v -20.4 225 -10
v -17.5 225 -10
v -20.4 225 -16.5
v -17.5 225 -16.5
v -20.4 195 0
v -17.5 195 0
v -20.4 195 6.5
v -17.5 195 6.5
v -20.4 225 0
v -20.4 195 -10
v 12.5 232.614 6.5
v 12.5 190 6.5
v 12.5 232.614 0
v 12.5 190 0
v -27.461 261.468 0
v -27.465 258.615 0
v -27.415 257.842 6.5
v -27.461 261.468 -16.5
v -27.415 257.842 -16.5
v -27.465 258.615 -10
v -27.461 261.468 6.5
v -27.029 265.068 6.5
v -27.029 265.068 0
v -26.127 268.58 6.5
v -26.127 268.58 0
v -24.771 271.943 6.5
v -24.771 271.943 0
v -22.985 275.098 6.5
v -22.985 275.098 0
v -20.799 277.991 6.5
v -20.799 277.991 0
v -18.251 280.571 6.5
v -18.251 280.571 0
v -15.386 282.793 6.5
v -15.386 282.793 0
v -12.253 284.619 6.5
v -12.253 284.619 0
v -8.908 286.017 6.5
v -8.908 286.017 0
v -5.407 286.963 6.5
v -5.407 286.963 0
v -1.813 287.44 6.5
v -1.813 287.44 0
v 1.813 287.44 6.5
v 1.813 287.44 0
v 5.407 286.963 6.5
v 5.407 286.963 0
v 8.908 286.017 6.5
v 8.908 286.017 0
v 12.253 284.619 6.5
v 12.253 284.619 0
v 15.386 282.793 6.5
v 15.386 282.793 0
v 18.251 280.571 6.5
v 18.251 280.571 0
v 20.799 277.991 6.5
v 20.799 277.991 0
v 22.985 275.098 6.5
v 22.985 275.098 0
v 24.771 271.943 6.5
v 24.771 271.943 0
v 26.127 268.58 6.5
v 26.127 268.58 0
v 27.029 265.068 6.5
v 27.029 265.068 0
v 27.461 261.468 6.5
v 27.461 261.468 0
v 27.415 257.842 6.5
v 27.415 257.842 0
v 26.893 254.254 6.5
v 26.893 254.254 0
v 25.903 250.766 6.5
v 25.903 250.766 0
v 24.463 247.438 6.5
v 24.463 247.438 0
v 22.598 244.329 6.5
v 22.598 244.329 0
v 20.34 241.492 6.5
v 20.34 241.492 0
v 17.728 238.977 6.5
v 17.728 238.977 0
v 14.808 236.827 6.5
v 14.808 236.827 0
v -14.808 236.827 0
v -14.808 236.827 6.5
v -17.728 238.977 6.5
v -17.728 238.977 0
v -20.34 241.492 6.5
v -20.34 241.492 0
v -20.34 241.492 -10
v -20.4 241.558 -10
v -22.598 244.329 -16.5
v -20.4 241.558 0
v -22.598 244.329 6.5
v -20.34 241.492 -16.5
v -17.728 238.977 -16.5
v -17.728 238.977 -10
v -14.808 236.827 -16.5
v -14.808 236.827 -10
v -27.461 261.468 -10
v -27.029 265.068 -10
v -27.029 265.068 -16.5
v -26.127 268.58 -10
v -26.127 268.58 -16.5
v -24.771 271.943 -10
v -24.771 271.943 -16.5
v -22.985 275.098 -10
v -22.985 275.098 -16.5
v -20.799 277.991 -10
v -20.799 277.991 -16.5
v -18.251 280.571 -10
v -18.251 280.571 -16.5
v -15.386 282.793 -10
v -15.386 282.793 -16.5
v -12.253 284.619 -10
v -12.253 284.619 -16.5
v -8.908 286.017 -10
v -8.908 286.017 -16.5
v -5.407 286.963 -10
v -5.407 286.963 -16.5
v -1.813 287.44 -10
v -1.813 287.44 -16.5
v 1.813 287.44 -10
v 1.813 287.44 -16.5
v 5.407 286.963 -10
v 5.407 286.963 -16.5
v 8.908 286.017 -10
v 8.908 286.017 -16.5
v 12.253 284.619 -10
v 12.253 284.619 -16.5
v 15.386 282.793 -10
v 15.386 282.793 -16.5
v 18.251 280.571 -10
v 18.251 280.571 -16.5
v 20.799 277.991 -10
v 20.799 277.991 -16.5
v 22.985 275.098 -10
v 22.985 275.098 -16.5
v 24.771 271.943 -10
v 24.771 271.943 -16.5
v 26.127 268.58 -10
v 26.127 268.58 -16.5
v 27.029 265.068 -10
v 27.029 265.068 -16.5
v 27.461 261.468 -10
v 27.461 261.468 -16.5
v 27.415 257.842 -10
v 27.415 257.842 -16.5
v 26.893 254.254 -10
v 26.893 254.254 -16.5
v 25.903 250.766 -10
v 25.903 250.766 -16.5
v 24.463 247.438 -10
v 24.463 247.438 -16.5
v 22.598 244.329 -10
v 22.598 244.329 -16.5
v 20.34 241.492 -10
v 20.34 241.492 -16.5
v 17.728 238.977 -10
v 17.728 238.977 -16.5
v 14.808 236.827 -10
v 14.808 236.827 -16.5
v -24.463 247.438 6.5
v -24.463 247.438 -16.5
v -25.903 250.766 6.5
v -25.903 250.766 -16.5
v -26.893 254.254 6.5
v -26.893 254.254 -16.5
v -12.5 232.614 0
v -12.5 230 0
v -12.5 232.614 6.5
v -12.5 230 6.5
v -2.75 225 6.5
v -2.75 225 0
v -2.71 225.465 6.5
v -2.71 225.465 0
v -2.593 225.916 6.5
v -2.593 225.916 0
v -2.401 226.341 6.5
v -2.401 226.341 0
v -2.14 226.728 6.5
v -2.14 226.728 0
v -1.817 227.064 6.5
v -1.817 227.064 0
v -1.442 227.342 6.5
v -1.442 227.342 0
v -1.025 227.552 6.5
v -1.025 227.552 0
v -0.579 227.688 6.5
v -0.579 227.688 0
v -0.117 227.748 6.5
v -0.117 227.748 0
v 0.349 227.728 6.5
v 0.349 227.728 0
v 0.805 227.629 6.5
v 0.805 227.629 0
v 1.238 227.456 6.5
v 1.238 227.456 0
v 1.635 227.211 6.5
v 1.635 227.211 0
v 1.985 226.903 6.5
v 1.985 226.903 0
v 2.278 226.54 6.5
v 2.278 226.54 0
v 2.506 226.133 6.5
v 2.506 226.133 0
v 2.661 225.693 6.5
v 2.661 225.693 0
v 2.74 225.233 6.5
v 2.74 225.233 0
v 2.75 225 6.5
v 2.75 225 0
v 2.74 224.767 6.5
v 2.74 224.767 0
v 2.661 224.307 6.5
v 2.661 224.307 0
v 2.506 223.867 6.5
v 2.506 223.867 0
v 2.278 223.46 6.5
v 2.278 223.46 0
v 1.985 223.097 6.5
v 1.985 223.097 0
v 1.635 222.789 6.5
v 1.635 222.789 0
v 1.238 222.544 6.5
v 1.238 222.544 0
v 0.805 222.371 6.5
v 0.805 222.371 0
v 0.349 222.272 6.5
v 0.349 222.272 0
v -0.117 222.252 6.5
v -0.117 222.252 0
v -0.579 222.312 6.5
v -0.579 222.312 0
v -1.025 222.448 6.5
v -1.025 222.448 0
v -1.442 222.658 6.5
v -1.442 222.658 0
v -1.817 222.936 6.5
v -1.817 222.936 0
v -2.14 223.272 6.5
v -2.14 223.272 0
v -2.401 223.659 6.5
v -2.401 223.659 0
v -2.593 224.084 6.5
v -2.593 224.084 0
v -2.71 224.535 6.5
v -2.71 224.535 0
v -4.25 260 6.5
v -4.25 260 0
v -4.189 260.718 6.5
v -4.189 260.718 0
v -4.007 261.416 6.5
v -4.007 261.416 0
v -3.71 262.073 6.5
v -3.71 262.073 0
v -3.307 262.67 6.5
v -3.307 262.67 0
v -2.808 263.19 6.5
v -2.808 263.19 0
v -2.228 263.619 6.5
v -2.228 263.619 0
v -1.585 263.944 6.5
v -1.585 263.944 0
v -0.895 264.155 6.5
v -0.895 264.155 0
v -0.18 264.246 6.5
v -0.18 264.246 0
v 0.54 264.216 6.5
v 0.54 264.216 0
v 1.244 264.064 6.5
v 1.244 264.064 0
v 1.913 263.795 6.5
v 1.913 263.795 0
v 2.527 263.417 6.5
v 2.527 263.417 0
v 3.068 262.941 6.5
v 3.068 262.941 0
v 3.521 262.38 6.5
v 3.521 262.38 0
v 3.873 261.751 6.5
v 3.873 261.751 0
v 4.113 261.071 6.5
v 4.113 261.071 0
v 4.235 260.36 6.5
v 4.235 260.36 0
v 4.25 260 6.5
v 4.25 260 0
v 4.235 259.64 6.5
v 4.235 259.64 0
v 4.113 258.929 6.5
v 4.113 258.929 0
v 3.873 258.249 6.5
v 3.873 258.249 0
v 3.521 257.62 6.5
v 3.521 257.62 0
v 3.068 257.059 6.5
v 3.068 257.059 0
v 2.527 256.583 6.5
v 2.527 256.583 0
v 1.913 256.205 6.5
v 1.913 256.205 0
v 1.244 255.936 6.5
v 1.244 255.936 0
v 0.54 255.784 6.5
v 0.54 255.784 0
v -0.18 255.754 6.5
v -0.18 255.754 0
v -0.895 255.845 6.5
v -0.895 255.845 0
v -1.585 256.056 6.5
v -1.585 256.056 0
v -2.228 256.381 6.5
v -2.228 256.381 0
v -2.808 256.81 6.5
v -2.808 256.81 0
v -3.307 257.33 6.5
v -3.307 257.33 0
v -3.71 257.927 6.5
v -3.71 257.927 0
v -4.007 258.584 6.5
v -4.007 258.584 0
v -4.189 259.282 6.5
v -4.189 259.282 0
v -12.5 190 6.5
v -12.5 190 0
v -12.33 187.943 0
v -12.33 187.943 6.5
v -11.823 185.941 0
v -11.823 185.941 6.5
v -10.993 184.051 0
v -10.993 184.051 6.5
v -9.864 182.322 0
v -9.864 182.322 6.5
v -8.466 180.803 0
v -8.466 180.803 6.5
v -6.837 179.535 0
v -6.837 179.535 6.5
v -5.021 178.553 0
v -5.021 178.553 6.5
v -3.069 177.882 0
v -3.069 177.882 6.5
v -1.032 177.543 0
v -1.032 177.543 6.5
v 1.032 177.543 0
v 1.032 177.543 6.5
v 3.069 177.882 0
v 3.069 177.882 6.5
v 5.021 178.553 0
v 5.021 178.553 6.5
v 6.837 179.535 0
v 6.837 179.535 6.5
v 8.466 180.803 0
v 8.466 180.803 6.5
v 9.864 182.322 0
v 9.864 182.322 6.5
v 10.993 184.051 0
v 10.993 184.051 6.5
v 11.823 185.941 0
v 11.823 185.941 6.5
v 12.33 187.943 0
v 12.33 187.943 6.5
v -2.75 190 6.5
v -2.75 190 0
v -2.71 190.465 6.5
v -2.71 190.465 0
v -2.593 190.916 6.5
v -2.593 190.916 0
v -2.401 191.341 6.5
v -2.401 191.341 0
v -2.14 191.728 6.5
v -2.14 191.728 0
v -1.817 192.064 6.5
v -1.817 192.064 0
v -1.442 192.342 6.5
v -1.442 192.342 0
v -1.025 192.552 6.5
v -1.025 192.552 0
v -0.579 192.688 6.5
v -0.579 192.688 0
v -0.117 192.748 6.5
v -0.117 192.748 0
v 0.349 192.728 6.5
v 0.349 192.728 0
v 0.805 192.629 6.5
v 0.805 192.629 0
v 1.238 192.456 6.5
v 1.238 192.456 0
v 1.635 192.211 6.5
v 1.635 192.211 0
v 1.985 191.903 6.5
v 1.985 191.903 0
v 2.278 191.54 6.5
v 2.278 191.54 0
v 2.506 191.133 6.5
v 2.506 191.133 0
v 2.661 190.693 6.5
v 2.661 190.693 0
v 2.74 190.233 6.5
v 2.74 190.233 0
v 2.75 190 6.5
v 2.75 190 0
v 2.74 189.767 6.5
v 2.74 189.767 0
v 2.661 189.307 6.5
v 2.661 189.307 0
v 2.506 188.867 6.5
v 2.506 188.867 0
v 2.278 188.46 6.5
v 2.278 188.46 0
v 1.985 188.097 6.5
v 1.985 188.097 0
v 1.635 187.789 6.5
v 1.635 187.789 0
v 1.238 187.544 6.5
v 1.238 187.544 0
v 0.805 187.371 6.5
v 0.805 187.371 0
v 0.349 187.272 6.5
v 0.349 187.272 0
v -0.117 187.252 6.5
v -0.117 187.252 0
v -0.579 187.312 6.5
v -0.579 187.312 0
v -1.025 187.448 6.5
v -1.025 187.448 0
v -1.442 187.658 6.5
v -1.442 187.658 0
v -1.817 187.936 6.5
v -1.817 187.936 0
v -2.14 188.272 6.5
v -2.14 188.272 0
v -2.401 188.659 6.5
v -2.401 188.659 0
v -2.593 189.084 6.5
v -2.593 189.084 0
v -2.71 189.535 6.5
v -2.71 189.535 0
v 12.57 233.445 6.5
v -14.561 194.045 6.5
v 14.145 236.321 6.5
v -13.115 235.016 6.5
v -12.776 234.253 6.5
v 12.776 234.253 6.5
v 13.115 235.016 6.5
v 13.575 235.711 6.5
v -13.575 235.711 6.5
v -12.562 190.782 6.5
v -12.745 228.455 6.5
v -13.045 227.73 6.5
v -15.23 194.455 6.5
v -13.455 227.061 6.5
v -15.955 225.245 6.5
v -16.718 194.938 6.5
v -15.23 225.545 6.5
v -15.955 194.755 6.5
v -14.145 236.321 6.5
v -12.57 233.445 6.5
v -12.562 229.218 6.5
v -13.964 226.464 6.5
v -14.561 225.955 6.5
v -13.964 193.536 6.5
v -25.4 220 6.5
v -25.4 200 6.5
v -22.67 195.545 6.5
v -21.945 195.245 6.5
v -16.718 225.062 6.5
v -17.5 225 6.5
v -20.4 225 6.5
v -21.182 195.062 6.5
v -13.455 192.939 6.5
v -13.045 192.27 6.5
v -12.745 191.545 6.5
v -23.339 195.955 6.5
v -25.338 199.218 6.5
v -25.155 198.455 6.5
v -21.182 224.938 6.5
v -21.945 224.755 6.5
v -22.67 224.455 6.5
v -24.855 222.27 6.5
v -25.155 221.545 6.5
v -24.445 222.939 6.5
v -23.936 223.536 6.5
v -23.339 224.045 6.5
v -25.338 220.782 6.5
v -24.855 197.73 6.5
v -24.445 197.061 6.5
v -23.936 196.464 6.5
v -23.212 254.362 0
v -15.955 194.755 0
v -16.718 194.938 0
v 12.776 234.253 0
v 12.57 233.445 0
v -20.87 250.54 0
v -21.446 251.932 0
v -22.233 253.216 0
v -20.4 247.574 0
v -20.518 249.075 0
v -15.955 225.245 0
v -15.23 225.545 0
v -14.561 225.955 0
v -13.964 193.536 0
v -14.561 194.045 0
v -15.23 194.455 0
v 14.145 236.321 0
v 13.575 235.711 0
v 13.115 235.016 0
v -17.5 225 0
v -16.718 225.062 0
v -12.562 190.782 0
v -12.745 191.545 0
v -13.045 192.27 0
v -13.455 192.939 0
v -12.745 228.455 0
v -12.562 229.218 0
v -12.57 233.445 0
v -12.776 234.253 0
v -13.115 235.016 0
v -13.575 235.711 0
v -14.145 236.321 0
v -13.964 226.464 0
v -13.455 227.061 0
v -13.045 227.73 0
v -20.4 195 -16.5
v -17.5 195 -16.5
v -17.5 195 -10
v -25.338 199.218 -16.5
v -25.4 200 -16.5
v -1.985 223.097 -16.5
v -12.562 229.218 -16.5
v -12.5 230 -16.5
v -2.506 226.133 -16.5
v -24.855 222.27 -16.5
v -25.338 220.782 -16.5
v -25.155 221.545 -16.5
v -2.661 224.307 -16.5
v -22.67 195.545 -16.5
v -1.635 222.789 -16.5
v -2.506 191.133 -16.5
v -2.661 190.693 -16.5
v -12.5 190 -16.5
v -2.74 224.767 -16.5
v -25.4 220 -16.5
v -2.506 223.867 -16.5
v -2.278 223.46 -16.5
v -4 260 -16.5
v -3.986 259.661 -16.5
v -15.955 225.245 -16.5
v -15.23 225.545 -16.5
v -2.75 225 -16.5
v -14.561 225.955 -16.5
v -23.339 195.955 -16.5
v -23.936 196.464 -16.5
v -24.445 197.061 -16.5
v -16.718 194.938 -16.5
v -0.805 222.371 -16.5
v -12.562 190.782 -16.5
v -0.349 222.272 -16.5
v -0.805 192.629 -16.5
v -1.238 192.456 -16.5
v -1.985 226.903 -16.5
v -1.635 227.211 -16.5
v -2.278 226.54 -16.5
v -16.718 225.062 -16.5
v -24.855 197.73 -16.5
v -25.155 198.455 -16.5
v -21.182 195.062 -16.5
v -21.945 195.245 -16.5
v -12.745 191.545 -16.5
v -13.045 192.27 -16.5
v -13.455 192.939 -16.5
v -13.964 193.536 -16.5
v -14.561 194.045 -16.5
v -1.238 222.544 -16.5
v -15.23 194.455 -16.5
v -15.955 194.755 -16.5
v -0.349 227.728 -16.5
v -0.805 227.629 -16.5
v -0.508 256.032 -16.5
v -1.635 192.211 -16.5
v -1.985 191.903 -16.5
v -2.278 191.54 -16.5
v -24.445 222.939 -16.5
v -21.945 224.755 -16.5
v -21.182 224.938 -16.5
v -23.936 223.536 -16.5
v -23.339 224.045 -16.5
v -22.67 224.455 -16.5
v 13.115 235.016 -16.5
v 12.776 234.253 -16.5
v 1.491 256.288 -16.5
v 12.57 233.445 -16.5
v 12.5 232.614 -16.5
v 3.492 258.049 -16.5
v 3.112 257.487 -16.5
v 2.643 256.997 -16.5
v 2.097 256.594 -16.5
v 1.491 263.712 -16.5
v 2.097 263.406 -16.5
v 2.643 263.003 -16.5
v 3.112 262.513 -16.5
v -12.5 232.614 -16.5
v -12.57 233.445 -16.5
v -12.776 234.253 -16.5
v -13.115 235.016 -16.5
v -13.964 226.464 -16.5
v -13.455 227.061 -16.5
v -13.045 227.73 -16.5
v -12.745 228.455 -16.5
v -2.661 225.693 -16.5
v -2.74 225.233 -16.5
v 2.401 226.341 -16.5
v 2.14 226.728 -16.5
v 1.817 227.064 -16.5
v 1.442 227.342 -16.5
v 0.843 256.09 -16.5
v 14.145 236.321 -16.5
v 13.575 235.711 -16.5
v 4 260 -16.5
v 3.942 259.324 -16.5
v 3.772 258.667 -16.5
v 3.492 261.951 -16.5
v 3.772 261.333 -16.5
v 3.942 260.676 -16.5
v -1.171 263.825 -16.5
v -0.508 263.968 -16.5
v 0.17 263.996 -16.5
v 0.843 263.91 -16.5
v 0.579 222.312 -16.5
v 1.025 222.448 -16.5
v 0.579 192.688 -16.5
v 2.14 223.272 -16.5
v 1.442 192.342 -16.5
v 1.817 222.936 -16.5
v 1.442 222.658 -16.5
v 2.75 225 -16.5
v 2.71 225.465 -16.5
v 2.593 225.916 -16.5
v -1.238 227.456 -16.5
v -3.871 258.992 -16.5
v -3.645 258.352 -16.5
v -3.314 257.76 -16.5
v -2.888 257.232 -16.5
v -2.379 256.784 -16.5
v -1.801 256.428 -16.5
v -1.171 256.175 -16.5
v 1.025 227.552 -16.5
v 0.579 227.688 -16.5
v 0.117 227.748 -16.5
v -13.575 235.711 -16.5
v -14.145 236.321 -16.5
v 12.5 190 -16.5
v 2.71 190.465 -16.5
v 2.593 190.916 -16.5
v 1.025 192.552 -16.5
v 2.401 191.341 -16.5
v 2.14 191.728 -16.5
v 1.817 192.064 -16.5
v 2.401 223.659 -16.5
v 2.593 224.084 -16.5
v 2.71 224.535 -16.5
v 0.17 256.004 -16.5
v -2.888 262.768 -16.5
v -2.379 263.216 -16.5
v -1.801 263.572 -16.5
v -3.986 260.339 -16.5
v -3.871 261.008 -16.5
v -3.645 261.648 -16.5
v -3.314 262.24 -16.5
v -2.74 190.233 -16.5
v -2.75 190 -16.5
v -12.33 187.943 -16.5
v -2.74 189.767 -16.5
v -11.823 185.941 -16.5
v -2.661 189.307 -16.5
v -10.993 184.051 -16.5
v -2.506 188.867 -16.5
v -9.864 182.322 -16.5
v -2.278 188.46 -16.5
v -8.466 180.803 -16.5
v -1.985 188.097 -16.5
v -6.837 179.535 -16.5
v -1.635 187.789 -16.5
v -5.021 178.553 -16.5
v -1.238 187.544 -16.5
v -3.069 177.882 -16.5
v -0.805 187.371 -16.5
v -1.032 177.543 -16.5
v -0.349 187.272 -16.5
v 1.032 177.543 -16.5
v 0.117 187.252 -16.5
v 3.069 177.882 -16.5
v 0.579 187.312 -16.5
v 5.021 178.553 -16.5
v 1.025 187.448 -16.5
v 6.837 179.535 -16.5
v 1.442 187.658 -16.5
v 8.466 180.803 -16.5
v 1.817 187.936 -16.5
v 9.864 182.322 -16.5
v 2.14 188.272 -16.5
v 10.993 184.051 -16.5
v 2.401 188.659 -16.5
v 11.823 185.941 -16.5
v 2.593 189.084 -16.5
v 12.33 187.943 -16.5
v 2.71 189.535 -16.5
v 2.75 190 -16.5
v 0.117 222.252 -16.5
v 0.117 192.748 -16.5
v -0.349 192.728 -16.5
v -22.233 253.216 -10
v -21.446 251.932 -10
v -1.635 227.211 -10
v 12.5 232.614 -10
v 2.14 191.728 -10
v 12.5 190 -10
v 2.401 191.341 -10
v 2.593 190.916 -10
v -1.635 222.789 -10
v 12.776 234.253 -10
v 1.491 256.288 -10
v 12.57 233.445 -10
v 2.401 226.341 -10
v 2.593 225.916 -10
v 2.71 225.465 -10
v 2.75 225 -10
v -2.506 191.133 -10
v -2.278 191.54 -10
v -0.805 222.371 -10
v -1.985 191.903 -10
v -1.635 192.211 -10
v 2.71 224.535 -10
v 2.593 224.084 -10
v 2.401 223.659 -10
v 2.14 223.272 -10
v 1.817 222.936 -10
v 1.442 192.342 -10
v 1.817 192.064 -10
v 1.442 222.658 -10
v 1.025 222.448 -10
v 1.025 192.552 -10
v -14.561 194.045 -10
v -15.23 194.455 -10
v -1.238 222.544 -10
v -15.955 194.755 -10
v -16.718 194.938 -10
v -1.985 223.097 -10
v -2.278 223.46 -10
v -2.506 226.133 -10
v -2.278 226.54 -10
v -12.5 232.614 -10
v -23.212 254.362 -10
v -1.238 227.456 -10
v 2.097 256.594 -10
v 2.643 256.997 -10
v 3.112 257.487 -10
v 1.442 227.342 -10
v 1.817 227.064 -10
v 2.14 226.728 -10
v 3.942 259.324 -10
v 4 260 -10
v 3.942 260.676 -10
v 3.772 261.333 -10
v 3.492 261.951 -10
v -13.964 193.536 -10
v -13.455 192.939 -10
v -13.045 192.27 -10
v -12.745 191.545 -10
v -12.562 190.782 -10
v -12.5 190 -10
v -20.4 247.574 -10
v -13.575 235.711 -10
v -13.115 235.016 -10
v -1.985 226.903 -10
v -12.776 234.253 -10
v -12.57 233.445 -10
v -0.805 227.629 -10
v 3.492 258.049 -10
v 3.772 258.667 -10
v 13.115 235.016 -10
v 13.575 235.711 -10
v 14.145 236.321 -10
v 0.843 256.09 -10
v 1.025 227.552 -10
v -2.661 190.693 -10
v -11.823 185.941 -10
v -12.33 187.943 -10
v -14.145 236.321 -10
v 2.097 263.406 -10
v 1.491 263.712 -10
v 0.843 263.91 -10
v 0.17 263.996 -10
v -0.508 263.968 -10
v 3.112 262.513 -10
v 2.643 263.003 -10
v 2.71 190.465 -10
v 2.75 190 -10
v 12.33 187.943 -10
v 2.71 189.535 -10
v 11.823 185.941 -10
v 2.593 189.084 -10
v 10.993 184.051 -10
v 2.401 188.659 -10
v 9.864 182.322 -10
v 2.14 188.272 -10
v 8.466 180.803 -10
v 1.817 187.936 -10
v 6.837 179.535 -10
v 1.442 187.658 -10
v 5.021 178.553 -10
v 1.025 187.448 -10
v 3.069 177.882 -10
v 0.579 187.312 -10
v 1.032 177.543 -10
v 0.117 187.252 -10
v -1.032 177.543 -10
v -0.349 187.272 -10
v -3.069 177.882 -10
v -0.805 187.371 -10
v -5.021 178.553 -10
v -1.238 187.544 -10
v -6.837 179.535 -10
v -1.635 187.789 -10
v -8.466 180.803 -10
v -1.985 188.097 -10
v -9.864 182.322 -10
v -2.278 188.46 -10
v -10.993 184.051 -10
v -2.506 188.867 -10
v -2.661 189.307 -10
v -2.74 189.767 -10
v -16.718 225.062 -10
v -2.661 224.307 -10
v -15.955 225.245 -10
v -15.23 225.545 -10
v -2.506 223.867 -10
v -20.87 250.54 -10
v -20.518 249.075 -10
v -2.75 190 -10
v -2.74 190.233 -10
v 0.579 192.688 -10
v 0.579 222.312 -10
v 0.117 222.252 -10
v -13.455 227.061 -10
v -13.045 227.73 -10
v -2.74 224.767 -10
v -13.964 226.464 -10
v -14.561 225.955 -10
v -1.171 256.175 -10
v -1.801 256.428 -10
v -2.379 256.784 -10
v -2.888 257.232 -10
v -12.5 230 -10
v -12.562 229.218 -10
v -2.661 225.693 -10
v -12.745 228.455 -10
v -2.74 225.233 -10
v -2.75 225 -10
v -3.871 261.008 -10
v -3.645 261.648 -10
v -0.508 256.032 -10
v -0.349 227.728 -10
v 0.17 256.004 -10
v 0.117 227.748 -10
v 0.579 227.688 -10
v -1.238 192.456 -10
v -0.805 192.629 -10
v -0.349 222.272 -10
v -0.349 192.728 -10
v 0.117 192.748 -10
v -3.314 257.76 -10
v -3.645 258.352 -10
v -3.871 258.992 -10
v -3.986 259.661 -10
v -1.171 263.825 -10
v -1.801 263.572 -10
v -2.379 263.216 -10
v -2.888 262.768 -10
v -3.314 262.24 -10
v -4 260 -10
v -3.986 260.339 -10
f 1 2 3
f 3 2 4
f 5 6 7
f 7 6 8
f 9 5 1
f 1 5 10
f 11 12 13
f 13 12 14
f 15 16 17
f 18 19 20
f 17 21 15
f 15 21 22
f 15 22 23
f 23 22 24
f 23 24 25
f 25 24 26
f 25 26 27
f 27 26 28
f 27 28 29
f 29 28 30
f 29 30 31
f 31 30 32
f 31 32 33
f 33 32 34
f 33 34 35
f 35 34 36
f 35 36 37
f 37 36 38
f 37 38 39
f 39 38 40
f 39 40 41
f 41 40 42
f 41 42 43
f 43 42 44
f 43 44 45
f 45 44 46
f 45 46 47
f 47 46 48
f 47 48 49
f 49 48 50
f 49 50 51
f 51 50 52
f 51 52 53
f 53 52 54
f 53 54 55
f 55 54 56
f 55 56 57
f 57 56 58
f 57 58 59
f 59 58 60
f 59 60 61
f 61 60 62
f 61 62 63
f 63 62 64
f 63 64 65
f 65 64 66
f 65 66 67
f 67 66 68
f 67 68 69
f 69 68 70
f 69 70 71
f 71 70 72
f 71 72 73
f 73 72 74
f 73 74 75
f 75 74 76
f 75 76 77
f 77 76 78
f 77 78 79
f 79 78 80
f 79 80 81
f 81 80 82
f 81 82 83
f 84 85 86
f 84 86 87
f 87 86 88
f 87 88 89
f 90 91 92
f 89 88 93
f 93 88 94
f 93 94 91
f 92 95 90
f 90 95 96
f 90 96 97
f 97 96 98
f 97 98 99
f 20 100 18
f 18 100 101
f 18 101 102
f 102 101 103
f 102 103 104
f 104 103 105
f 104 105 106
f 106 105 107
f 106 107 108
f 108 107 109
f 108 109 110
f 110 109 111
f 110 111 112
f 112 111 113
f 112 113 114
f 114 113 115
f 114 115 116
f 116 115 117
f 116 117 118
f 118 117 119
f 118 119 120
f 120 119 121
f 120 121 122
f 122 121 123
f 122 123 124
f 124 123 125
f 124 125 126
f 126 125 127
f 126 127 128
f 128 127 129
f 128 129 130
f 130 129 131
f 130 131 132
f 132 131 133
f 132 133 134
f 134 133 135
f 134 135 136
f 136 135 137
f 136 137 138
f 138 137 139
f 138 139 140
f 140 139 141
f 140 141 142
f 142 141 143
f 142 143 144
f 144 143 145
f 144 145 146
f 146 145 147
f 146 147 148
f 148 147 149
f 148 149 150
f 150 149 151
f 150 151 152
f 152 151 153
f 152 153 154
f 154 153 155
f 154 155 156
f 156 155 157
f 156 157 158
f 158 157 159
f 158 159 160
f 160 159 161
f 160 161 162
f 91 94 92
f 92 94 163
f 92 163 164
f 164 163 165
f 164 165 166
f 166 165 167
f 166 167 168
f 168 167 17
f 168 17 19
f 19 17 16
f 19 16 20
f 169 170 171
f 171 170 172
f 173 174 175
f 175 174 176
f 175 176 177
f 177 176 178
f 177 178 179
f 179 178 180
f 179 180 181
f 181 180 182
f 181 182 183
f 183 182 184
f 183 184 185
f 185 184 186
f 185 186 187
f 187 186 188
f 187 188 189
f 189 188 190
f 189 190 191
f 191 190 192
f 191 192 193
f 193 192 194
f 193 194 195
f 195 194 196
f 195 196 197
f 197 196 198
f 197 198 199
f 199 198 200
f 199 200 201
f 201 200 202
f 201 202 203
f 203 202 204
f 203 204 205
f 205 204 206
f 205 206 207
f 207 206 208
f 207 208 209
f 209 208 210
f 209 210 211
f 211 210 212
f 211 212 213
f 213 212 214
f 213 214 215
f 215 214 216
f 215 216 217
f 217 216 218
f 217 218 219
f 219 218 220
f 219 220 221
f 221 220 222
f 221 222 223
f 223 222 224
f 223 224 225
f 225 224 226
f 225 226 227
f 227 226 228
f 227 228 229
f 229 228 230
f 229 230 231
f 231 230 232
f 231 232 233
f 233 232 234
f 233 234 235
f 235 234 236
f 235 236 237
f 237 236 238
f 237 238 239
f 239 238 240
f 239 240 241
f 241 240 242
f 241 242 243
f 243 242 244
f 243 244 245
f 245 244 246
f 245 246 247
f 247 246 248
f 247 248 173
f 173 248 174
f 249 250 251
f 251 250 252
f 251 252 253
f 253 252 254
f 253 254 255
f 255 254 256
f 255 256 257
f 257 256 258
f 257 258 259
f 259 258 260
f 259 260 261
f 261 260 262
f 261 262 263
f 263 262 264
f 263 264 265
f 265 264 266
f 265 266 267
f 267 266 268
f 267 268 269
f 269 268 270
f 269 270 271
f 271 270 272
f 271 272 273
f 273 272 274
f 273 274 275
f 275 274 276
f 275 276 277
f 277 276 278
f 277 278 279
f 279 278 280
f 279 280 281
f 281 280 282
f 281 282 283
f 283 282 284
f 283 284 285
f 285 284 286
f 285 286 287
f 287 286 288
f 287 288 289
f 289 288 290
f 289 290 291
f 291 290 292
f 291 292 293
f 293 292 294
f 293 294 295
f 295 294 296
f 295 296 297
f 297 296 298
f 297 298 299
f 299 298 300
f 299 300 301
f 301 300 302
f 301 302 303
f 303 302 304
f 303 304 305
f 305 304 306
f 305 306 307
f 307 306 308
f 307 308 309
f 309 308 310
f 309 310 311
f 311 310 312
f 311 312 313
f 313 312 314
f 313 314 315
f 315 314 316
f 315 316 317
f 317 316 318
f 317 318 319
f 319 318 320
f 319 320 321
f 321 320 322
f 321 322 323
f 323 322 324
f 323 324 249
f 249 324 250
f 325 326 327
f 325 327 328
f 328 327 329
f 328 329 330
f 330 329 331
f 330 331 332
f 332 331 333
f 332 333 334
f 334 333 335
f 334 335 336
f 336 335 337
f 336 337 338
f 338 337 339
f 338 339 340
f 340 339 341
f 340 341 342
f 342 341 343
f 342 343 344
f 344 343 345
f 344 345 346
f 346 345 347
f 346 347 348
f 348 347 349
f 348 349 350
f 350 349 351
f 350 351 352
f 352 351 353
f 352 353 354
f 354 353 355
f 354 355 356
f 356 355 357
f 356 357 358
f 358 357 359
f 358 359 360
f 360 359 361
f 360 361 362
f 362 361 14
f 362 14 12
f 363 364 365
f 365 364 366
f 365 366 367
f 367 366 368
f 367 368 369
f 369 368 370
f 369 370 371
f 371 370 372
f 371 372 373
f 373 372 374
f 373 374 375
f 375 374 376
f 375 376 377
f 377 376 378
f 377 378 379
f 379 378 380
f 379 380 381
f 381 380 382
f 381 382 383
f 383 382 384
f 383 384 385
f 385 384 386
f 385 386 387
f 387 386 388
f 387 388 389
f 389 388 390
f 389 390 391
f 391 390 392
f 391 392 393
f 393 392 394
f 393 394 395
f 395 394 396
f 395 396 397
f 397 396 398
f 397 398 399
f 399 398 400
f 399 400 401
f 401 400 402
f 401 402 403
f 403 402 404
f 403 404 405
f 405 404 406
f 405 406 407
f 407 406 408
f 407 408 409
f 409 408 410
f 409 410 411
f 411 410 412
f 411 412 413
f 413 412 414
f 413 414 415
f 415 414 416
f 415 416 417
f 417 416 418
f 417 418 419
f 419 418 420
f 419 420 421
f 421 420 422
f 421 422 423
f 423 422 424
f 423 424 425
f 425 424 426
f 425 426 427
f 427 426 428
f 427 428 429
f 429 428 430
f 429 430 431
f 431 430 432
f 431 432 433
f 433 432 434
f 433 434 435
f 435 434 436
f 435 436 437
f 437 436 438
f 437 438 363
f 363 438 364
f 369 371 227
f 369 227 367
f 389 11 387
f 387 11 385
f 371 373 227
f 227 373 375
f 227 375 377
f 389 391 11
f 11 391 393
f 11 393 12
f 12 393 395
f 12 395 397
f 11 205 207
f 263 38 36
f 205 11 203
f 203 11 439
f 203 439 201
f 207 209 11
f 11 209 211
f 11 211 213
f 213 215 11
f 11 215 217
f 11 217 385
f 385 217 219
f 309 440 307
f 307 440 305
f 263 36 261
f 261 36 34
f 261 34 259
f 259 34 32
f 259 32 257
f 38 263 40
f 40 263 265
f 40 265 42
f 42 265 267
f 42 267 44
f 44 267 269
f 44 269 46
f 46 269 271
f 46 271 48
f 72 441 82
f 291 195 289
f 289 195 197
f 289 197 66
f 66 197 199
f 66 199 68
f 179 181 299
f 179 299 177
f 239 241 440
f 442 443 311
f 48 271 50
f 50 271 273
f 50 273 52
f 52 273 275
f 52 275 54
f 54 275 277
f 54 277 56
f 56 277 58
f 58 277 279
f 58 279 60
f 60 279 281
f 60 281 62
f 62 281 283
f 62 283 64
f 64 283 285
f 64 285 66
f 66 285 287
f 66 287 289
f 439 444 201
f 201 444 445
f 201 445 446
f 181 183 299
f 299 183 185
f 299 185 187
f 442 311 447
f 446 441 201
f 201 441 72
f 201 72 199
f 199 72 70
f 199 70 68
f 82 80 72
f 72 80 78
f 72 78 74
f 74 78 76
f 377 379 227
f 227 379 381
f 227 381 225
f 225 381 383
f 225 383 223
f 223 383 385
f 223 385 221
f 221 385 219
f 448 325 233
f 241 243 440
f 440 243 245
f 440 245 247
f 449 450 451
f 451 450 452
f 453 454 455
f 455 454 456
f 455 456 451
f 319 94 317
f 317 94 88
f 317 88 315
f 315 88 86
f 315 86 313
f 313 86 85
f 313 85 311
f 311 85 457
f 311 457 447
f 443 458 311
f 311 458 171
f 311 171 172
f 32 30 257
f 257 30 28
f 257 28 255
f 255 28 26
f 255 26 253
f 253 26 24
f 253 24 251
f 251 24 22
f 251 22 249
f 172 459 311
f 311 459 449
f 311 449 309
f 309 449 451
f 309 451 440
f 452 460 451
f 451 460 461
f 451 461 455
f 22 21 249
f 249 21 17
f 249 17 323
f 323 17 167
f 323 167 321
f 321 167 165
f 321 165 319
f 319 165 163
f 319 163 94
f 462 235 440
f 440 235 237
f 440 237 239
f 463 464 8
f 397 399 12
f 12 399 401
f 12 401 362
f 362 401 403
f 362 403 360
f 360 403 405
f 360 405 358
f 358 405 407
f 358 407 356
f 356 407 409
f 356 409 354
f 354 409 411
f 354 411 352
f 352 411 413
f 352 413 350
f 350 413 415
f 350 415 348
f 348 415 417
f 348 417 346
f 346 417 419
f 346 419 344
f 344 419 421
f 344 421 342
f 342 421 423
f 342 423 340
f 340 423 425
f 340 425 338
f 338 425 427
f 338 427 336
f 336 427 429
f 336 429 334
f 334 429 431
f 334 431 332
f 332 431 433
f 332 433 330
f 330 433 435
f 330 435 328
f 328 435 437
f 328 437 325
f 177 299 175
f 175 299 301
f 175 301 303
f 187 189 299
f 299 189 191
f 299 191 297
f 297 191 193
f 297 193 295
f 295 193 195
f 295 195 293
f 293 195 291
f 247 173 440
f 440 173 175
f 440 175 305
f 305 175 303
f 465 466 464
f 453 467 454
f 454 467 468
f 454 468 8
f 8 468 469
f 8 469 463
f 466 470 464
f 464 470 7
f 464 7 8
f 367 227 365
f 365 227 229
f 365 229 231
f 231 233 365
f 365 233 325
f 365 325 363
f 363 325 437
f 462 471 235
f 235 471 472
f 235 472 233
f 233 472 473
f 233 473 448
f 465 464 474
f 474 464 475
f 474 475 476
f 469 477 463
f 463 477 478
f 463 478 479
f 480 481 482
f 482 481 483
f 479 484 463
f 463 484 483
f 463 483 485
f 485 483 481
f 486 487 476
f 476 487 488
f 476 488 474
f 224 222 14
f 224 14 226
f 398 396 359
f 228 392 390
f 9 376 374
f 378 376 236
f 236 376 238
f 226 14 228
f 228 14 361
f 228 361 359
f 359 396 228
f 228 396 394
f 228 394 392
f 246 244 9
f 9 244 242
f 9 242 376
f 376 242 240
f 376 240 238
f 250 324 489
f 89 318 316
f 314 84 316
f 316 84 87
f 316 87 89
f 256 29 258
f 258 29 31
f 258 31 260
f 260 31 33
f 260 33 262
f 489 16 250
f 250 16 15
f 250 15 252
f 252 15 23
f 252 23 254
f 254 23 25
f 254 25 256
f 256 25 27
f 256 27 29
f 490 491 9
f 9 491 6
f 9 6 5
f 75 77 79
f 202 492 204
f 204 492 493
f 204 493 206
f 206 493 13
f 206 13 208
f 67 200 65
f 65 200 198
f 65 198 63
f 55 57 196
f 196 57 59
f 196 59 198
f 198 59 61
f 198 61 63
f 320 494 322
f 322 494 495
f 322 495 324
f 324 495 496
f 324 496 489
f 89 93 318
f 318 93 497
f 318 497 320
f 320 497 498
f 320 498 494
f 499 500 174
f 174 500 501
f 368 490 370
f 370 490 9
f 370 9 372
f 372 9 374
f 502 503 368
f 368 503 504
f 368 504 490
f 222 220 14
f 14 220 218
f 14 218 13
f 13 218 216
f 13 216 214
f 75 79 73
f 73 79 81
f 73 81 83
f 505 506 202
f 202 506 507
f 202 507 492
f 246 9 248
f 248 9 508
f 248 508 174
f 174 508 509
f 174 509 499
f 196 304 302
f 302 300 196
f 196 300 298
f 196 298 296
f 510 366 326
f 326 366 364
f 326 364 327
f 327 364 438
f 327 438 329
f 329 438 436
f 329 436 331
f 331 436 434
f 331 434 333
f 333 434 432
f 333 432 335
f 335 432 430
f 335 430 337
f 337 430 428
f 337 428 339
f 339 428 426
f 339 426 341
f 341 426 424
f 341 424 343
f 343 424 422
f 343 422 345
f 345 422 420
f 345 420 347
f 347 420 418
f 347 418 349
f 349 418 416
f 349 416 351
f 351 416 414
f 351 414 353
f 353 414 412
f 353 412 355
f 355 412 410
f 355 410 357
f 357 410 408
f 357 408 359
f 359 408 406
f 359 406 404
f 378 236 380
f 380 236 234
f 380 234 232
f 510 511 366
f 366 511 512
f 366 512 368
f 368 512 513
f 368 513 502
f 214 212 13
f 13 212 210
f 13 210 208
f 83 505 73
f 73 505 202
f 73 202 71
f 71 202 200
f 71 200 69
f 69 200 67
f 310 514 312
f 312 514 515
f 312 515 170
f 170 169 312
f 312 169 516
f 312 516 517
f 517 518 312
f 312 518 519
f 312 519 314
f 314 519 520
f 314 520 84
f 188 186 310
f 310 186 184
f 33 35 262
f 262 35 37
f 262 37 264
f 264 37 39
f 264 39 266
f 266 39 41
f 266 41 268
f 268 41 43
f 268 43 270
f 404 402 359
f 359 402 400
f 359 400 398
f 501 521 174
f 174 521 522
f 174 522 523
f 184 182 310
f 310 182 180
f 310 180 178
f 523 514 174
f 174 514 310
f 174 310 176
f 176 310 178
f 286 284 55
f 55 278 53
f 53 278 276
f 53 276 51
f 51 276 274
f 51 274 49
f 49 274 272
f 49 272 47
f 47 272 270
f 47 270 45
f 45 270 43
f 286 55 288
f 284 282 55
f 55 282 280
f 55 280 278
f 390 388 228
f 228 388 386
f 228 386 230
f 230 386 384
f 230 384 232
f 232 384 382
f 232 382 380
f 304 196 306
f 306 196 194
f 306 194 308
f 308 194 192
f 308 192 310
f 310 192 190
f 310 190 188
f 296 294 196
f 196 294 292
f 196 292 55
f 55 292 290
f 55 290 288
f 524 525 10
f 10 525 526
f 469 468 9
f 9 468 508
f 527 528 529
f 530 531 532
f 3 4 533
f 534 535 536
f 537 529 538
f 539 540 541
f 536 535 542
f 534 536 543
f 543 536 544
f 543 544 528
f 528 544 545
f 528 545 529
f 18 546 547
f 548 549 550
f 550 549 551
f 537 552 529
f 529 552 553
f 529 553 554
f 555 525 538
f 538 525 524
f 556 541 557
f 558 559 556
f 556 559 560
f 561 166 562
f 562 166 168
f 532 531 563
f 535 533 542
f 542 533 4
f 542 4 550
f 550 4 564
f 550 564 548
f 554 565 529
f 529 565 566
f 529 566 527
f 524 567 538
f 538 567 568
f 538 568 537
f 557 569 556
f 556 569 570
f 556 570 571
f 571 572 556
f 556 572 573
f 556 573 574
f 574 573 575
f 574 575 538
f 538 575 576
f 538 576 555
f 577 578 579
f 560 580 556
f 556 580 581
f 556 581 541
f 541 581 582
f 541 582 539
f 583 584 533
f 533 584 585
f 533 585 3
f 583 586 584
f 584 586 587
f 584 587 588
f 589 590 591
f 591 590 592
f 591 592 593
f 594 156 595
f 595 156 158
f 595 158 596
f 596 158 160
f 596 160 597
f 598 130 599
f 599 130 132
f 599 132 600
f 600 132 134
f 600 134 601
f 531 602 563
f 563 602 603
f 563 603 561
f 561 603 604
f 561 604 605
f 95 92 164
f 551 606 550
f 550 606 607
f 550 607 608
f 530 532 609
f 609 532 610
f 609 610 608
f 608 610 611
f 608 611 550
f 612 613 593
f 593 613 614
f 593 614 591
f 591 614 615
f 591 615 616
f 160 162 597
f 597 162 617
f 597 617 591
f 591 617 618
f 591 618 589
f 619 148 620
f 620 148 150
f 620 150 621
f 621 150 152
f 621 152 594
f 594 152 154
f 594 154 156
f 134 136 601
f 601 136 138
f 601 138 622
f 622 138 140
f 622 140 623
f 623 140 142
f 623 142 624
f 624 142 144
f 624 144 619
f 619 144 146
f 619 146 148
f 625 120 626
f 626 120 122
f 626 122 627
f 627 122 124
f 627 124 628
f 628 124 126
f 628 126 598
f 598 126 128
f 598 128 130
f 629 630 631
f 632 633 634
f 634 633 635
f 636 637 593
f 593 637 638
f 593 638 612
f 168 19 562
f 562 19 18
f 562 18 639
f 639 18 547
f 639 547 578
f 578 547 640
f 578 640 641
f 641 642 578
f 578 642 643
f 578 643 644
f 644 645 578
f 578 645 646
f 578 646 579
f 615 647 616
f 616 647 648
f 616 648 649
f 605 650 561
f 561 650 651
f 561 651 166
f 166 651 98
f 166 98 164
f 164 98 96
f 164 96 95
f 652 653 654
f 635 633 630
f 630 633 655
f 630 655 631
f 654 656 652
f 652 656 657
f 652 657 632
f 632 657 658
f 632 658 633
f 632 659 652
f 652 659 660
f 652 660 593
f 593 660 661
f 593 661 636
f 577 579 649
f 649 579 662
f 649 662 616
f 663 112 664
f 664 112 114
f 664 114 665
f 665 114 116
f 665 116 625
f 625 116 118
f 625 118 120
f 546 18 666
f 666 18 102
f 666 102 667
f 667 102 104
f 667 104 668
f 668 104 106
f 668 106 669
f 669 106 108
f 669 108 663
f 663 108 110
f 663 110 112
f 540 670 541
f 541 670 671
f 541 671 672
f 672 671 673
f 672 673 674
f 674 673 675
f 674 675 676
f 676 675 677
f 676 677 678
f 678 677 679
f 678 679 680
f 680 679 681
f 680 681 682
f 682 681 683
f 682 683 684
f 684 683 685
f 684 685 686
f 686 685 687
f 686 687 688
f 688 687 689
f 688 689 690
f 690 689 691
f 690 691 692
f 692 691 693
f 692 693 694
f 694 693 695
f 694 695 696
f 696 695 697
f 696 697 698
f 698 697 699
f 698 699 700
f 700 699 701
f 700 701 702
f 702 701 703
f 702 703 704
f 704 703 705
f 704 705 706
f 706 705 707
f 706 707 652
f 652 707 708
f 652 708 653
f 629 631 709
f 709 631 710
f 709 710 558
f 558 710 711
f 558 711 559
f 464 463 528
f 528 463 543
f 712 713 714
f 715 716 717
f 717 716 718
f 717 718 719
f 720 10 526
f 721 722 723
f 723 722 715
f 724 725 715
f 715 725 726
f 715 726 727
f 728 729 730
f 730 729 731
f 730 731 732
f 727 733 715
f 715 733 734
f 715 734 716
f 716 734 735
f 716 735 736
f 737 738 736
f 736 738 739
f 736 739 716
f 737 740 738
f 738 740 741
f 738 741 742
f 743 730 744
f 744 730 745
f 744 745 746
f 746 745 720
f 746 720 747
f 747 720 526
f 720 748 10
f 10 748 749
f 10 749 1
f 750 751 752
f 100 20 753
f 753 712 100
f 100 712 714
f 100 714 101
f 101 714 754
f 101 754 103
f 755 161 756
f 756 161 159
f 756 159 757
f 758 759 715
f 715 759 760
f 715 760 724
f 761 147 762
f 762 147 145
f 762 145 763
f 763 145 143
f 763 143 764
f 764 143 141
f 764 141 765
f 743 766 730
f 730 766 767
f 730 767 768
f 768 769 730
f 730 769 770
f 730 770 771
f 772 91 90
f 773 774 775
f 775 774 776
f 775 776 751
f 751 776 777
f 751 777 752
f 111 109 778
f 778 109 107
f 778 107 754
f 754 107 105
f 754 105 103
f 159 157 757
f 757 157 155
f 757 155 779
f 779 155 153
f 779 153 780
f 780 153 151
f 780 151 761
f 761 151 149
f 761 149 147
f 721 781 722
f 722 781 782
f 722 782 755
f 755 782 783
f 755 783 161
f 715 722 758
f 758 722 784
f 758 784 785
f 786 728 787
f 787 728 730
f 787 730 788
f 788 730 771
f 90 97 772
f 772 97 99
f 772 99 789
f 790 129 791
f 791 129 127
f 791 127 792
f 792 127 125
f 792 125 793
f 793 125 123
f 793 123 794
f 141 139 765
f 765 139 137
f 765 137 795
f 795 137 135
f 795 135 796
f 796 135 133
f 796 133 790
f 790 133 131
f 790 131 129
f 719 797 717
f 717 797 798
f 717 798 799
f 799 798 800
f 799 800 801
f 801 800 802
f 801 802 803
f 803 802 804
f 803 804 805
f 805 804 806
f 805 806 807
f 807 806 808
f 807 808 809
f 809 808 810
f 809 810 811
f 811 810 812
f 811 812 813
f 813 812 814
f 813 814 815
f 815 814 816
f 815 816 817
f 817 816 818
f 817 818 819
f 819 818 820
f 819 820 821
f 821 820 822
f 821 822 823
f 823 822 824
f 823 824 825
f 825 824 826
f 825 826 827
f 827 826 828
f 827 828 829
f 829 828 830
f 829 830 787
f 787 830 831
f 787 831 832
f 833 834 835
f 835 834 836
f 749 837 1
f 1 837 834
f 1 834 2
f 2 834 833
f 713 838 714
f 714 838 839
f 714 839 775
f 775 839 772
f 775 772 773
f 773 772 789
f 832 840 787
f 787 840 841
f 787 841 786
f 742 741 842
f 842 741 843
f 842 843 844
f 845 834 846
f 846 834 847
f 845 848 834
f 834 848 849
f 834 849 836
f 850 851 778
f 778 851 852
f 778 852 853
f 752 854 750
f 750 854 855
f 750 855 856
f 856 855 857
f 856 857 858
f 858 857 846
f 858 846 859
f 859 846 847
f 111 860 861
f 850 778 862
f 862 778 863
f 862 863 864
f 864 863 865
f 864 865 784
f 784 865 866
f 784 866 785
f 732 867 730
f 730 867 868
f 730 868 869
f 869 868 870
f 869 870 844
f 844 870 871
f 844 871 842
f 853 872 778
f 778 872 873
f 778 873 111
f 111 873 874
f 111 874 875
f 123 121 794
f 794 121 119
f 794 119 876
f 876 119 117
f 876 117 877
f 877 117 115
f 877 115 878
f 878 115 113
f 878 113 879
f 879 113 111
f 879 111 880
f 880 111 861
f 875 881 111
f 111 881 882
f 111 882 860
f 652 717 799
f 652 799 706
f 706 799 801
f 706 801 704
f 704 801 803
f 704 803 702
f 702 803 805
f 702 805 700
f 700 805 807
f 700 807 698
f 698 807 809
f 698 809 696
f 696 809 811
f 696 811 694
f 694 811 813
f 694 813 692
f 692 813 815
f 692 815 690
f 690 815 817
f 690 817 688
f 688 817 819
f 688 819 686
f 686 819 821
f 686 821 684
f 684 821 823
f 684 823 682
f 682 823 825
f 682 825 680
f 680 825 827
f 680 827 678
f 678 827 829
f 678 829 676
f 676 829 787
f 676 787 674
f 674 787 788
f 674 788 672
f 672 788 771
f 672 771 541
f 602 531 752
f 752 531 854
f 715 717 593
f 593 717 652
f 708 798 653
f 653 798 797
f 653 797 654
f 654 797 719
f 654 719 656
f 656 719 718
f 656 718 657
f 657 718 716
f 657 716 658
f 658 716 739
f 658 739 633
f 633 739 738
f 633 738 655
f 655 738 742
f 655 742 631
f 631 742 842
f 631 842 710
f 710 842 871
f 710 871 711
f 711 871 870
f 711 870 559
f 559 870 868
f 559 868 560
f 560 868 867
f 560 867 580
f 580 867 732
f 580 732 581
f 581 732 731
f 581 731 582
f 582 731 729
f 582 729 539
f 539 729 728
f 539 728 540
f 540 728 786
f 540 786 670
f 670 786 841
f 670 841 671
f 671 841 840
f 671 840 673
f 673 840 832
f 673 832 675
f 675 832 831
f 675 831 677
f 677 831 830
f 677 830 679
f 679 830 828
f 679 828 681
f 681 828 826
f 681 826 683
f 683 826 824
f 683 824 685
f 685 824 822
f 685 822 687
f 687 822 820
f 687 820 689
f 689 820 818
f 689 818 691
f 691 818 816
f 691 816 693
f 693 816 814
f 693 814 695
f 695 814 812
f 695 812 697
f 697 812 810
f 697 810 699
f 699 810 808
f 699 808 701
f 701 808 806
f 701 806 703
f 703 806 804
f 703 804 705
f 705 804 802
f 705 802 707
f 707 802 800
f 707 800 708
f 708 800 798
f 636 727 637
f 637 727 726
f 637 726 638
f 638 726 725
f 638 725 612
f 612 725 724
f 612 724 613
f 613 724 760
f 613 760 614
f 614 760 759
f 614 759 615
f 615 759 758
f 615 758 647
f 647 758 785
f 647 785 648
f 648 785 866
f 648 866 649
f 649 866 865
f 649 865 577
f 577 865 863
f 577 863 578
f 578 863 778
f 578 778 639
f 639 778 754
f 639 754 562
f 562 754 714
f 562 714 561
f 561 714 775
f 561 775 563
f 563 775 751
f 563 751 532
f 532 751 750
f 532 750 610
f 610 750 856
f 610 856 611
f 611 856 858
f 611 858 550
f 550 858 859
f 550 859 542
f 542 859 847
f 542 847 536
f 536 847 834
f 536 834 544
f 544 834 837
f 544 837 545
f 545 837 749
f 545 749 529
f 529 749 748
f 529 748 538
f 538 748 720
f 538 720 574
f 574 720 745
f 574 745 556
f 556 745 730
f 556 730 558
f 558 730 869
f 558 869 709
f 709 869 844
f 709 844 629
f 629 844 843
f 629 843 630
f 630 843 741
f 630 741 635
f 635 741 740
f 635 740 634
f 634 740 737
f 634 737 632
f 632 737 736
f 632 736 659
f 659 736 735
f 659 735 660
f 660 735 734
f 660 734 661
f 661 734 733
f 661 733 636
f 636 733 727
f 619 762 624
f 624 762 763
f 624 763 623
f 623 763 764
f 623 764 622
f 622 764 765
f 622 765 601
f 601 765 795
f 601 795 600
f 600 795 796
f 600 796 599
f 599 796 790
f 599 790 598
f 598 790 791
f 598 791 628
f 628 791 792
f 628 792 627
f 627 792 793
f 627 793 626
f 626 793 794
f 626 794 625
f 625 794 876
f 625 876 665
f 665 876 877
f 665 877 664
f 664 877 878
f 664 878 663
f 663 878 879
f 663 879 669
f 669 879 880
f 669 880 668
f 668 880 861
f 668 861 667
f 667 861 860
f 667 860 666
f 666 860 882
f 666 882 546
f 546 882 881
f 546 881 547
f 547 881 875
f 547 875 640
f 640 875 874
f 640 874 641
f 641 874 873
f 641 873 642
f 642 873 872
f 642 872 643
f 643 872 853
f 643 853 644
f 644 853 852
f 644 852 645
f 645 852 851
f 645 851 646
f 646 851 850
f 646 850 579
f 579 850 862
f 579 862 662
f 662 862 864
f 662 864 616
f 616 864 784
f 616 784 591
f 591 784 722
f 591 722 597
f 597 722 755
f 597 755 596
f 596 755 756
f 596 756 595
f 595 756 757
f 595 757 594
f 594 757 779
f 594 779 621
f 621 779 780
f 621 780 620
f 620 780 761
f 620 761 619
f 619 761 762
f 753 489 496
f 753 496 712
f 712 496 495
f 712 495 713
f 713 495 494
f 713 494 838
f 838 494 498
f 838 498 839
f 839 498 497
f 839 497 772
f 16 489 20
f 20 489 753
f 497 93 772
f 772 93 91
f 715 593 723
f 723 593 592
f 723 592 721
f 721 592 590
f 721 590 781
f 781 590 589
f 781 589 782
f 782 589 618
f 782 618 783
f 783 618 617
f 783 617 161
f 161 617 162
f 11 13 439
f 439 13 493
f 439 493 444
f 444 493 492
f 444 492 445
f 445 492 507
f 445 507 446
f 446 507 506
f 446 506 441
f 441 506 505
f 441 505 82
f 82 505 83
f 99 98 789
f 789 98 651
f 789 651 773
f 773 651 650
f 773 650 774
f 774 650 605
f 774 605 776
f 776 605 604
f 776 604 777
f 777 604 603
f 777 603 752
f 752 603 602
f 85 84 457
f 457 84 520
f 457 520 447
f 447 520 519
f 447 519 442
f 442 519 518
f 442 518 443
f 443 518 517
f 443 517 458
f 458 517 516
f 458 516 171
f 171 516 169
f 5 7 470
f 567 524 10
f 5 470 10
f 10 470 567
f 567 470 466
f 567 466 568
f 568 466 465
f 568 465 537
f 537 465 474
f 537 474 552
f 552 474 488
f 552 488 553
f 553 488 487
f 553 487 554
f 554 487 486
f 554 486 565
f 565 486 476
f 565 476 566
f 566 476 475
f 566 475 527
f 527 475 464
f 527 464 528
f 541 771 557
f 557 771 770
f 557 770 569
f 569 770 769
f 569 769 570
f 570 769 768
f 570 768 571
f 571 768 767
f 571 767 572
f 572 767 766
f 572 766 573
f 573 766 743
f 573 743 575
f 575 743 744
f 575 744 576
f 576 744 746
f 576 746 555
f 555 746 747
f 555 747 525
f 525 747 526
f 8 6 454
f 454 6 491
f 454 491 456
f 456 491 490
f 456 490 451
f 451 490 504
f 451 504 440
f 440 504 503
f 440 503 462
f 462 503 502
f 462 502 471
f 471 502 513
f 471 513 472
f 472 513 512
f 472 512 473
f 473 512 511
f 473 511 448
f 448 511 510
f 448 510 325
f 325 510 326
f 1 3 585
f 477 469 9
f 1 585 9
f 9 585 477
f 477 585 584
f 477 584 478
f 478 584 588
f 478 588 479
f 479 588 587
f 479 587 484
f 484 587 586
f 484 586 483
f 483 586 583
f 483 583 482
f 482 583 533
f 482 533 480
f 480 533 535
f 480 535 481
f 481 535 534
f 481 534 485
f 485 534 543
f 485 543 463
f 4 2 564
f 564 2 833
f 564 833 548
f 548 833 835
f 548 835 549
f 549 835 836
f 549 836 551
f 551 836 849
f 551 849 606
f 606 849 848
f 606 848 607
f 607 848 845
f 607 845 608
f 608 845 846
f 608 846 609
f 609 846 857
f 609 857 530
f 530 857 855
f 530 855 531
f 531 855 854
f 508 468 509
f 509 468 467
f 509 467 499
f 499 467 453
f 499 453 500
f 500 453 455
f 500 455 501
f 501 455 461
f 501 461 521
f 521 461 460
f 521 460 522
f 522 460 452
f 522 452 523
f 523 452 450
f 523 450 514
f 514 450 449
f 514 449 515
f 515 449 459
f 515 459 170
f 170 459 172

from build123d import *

# Parameters (mm, degrees)
SKETCH2_R           = 4.25
SKETCH2_R_2         = 2.75
BOSS_EXTRUDE1_DEPTH = 6.5
SKETCH3_W           = 20
SKETCH3_H           = 30
BOSS_EXTRUDE2_DEPTH = 6.5
SKETCH4_R           = 2.75
CUT_EXTRUDE1_DEPTH  = 289.885357884
SKETCH5_W           = 0.4
SKETCH5_H           = 30
BOSS_EXTRUDE3_DEPTH = 6.5
SKETCH6_R           = 2.75
SKETCH6_R_2         = 4
BOSS_EXTRUDE4_DEPTH = 6.5
SKETCH9_W           = 23
SKETCH9_H           = 30
BOSS_EXTRUDE6_DEPTH = 5
BOSS_EXTRUDE7_DEPTH = 14
FILLET1_START       = -17
FILLET1_DEPTH       = 24
FILLET1_START_2     = -16.5
FILLET1_2_DEPTH     = 6.5
FILLET1_3_DEPTH     = 6.5


with BuildPart() as part:
    # Sketch2 → Boss-Extrude1 (new body)
    with BuildSketch(Plane.XY):
        with BuildLine():
            ThreePointArc((12.5, 235.505102572), (0, 287.5), (-12.5, 235.505102572))
            Line((-12.5, 235.505102572), (-12.5, 190))
            ThreePointArc((-12.5, 190), (0, 177.5), (12.5, 190))
            Line((12.5, 190), (12.5, 235.505102572))
        make_face()
        with Locations(Location((0, 260, 0), (0, 0, 180))):
            Circle(SKETCH2_R, mode=Mode.SUBTRACT)
        with Locations(Location((0, 225, 0), (0, 0, 180))):
            Circle(SKETCH2_R_2, mode=Mode.SUBTRACT)
        with Locations(Location((0, 190, 0), (0, 0, 180))):
            Circle(SKETCH2_R_2, mode=Mode.SUBTRACT)
    extrude(amount=BOSS_EXTRUDE1_DEPTH)

    # Sketch3 → Boss-Extrude2 (add)
    with BuildSketch(Plane.XY.offset(6.5)):
        with Locations((-10, 210)):
            Rectangle(SKETCH3_W, SKETCH3_H)
    extrude(amount=-BOSS_EXTRUDE2_DEPTH)

    # Sketch4 → Cut-Extrude1 (cut, through all)
    with BuildSketch(Plane.XY.offset(6.5)):
        with Locations(Location((0, 225, 0), (0, 0, 180))):
            Circle(SKETCH4_R)
    extrude(amount=-CUT_EXTRUDE1_DEPTH, mode=Mode.SUBTRACT)

    # Sketch5 → Boss-Extrude3 (add)
    with BuildSketch(Plane.XY.offset(6.5)):
        with Locations((-20.2, 210)):
            Rectangle(SKETCH5_W, SKETCH5_H)
    extrude(amount=-BOSS_EXTRUDE3_DEPTH)



with BuildPart() as body_2:
    # Sketch6 → Boss-Extrude4 (new body)
    with BuildSketch(Plane(origin=(0, 0, -10), x_dir=(-1, 0, 0), z_dir=(0, 0, -1))):
        with BuildLine():
            Line((12.5, 190), (12.5, 195))
            Line((12.5, 195), (20.4, 195))
            Line((20.4, 195), (20.4, 225))
            Line((20.4, 225), (12.5, 225))
            Line((12.5, 225), (12.5, 235.505102572))
            ThreePointArc((12.5, 235.505102572), (0, 287.5), (-12.5, 235.505102572))
            Line((-12.5, 235.505102572), (-12.5, 190))
            ThreePointArc((-12.5, 190), (0, 177.5), (12.5, 190))
        make_face()
        with Locations((0, 190)):
            Circle(SKETCH6_R, mode=Mode.SUBTRACT)
        with Locations((0, 225)):
            Circle(SKETCH6_R, mode=Mode.SUBTRACT)
        with Locations(Location((0, 260, 0), (0, 0, 180))):
            Circle(SKETCH6_R_2, mode=Mode.SUBTRACT)
    extrude(amount=BOSS_EXTRUDE4_DEPTH)


with BuildPart() as part_1:
    add(part.part)

    add(body_2.part)  # Boss-Extrude6 merges body 2
    # Sketch9 → Boss-Extrude6 (add)
    with BuildSketch(Plane.ZY.offset(20.4)):
        with Locations((-5, 210)):
            Rectangle(SKETCH9_W, SKETCH9_H)
    extrude(amount=BOSS_EXTRUDE6_DEPTH)

    # Sketch10 → Boss-Extrude7 (add)
    with BuildSketch(Plane(origin=(0, 0, 0), x_dir=(-1, 0, 0), z_dir=(0, 0, -1))):
        with BuildLine():
            ThreePointArc((20.4, 241.558470779), (25.406687144, 249.47620561), (27.465108704, 258.615152031))
            Line((27.465108704, 258.615152031), (23.211774901, 254.361818228))
            ThreePointArc((23.211774901, 254.361818228), (21.130756488, 251.24735408), (20.4, 247.573593129))
            Line((20.4, 247.573593129), (20.4, 241.558470779))
        make_face()
    extrude(amount=BOSS_EXTRUDE7_DEPTH)

    # Fillet1: read off the stored shape, not the designer's step
    # Fillet1 outline → Fillet1 (cut)
    with BuildSketch(Plane.XY.offset(FILLET1_START)):
        with BuildLine():
            ThreePointArc((-20.4, 195), (-23.935533906, 196.464466094), (-25.4, 200))
            Line((-25.4, 200), (-25.4, 195))
            Line((-25.4, 195), (-20.4, 195))
        make_face()
        with BuildLine():
            ThreePointArc((-25.4, 220), (-23.935533906, 223.535533906), (-20.4, 225))
            Line((-20.4, 225), (-25.4, 225))
            Line((-25.4, 225), (-25.4, 220))
        make_face()
    extrude(amount=FILLET1_DEPTH, mode=Mode.SUBTRACT)

    # Fillet1 2 outline → Fillet1 2 (add)
    with BuildSketch(Plane.XY.offset(FILLET1_START_2)):
        with BuildLine():
            Line((12.5, 235.505102572), (12.5, 232.613872125))
            ThreePointArc((12.5, 232.613872125), (13.114709903, 235.015794432), (14.807692308, 236.827122567))
            ThreePointArc((14.807692308, 236.827122567), (13.669837198, 236.138198916), (12.5, 235.505102572))
        make_face()
        with BuildLine():
            Line((-12.5, 195), (-17.5, 195))
            ThreePointArc((-17.5, 195), (-13.964466094, 193.535533906), (-12.5, 190))
            Line((-12.5, 190), (-12.5, 195))
        make_face()
        with BuildLine():
            Line((-12.5, 225), (-12.5, 230))
            ThreePointArc((-12.5, 230), (-13.964466094, 226.464466094), (-17.5, 225))
            Line((-17.5, 225), (-12.5, 225))
        make_face()
        with BuildLine():
            ThreePointArc((-12.5, 235.505102572), (-13.669837198, 236.138198916), (-14.807692308, 236.827122567))
            ThreePointArc((-14.807692308, 236.827122567), (-13.114709903, 235.015794432), (-12.5, 232.613872125))
            Line((-12.5, 232.613872125), (-12.5, 235.505102572))
        make_face()
    extrude(amount=FILLET1_2_DEPTH)

    # Fillet1 3 outline → Fillet1 3 (add)
    with BuildSketch(Plane.XY):
        with BuildLine():
            Line((12.5, 235.505102572), (12.5, 232.613872125))
            ThreePointArc((12.5, 232.613872125), (13.114709903, 235.015794432), (14.807692308, 236.827122567))
            ThreePointArc((14.807692308, 236.827122567), (13.669837198, 236.138198916), (12.5, 235.505102572))
        make_face()
        with BuildLine():
            Line((-12.5, 195), (-17.5, 195))
            ThreePointArc((-17.5, 195), (-13.964466094, 193.535533906), (-12.5, 190))
            Line((-12.5, 190), (-12.5, 195))
        make_face()
        with BuildLine():
            Line((-12.5, 225), (-12.5, 230))
            ThreePointArc((-12.5, 230), (-13.964466094, 226.464466094), (-17.5, 225))
            Line((-17.5, 225), (-12.5, 225))
        make_face()
        with BuildLine():
            ThreePointArc((-12.5, 235.505102572), (-13.669837198, 236.138198916), (-14.807692308, 236.827122567))
            ThreePointArc((-14.807692308, 236.827122567), (-13.114709903, 235.015794432), (-12.5, 232.613872125))
            Line((-12.5, 232.613872125), (-12.5, 235.505102572))
        make_face()
    extrude(amount=FILLET1_3_DEPTH)


solid = part_1.part
